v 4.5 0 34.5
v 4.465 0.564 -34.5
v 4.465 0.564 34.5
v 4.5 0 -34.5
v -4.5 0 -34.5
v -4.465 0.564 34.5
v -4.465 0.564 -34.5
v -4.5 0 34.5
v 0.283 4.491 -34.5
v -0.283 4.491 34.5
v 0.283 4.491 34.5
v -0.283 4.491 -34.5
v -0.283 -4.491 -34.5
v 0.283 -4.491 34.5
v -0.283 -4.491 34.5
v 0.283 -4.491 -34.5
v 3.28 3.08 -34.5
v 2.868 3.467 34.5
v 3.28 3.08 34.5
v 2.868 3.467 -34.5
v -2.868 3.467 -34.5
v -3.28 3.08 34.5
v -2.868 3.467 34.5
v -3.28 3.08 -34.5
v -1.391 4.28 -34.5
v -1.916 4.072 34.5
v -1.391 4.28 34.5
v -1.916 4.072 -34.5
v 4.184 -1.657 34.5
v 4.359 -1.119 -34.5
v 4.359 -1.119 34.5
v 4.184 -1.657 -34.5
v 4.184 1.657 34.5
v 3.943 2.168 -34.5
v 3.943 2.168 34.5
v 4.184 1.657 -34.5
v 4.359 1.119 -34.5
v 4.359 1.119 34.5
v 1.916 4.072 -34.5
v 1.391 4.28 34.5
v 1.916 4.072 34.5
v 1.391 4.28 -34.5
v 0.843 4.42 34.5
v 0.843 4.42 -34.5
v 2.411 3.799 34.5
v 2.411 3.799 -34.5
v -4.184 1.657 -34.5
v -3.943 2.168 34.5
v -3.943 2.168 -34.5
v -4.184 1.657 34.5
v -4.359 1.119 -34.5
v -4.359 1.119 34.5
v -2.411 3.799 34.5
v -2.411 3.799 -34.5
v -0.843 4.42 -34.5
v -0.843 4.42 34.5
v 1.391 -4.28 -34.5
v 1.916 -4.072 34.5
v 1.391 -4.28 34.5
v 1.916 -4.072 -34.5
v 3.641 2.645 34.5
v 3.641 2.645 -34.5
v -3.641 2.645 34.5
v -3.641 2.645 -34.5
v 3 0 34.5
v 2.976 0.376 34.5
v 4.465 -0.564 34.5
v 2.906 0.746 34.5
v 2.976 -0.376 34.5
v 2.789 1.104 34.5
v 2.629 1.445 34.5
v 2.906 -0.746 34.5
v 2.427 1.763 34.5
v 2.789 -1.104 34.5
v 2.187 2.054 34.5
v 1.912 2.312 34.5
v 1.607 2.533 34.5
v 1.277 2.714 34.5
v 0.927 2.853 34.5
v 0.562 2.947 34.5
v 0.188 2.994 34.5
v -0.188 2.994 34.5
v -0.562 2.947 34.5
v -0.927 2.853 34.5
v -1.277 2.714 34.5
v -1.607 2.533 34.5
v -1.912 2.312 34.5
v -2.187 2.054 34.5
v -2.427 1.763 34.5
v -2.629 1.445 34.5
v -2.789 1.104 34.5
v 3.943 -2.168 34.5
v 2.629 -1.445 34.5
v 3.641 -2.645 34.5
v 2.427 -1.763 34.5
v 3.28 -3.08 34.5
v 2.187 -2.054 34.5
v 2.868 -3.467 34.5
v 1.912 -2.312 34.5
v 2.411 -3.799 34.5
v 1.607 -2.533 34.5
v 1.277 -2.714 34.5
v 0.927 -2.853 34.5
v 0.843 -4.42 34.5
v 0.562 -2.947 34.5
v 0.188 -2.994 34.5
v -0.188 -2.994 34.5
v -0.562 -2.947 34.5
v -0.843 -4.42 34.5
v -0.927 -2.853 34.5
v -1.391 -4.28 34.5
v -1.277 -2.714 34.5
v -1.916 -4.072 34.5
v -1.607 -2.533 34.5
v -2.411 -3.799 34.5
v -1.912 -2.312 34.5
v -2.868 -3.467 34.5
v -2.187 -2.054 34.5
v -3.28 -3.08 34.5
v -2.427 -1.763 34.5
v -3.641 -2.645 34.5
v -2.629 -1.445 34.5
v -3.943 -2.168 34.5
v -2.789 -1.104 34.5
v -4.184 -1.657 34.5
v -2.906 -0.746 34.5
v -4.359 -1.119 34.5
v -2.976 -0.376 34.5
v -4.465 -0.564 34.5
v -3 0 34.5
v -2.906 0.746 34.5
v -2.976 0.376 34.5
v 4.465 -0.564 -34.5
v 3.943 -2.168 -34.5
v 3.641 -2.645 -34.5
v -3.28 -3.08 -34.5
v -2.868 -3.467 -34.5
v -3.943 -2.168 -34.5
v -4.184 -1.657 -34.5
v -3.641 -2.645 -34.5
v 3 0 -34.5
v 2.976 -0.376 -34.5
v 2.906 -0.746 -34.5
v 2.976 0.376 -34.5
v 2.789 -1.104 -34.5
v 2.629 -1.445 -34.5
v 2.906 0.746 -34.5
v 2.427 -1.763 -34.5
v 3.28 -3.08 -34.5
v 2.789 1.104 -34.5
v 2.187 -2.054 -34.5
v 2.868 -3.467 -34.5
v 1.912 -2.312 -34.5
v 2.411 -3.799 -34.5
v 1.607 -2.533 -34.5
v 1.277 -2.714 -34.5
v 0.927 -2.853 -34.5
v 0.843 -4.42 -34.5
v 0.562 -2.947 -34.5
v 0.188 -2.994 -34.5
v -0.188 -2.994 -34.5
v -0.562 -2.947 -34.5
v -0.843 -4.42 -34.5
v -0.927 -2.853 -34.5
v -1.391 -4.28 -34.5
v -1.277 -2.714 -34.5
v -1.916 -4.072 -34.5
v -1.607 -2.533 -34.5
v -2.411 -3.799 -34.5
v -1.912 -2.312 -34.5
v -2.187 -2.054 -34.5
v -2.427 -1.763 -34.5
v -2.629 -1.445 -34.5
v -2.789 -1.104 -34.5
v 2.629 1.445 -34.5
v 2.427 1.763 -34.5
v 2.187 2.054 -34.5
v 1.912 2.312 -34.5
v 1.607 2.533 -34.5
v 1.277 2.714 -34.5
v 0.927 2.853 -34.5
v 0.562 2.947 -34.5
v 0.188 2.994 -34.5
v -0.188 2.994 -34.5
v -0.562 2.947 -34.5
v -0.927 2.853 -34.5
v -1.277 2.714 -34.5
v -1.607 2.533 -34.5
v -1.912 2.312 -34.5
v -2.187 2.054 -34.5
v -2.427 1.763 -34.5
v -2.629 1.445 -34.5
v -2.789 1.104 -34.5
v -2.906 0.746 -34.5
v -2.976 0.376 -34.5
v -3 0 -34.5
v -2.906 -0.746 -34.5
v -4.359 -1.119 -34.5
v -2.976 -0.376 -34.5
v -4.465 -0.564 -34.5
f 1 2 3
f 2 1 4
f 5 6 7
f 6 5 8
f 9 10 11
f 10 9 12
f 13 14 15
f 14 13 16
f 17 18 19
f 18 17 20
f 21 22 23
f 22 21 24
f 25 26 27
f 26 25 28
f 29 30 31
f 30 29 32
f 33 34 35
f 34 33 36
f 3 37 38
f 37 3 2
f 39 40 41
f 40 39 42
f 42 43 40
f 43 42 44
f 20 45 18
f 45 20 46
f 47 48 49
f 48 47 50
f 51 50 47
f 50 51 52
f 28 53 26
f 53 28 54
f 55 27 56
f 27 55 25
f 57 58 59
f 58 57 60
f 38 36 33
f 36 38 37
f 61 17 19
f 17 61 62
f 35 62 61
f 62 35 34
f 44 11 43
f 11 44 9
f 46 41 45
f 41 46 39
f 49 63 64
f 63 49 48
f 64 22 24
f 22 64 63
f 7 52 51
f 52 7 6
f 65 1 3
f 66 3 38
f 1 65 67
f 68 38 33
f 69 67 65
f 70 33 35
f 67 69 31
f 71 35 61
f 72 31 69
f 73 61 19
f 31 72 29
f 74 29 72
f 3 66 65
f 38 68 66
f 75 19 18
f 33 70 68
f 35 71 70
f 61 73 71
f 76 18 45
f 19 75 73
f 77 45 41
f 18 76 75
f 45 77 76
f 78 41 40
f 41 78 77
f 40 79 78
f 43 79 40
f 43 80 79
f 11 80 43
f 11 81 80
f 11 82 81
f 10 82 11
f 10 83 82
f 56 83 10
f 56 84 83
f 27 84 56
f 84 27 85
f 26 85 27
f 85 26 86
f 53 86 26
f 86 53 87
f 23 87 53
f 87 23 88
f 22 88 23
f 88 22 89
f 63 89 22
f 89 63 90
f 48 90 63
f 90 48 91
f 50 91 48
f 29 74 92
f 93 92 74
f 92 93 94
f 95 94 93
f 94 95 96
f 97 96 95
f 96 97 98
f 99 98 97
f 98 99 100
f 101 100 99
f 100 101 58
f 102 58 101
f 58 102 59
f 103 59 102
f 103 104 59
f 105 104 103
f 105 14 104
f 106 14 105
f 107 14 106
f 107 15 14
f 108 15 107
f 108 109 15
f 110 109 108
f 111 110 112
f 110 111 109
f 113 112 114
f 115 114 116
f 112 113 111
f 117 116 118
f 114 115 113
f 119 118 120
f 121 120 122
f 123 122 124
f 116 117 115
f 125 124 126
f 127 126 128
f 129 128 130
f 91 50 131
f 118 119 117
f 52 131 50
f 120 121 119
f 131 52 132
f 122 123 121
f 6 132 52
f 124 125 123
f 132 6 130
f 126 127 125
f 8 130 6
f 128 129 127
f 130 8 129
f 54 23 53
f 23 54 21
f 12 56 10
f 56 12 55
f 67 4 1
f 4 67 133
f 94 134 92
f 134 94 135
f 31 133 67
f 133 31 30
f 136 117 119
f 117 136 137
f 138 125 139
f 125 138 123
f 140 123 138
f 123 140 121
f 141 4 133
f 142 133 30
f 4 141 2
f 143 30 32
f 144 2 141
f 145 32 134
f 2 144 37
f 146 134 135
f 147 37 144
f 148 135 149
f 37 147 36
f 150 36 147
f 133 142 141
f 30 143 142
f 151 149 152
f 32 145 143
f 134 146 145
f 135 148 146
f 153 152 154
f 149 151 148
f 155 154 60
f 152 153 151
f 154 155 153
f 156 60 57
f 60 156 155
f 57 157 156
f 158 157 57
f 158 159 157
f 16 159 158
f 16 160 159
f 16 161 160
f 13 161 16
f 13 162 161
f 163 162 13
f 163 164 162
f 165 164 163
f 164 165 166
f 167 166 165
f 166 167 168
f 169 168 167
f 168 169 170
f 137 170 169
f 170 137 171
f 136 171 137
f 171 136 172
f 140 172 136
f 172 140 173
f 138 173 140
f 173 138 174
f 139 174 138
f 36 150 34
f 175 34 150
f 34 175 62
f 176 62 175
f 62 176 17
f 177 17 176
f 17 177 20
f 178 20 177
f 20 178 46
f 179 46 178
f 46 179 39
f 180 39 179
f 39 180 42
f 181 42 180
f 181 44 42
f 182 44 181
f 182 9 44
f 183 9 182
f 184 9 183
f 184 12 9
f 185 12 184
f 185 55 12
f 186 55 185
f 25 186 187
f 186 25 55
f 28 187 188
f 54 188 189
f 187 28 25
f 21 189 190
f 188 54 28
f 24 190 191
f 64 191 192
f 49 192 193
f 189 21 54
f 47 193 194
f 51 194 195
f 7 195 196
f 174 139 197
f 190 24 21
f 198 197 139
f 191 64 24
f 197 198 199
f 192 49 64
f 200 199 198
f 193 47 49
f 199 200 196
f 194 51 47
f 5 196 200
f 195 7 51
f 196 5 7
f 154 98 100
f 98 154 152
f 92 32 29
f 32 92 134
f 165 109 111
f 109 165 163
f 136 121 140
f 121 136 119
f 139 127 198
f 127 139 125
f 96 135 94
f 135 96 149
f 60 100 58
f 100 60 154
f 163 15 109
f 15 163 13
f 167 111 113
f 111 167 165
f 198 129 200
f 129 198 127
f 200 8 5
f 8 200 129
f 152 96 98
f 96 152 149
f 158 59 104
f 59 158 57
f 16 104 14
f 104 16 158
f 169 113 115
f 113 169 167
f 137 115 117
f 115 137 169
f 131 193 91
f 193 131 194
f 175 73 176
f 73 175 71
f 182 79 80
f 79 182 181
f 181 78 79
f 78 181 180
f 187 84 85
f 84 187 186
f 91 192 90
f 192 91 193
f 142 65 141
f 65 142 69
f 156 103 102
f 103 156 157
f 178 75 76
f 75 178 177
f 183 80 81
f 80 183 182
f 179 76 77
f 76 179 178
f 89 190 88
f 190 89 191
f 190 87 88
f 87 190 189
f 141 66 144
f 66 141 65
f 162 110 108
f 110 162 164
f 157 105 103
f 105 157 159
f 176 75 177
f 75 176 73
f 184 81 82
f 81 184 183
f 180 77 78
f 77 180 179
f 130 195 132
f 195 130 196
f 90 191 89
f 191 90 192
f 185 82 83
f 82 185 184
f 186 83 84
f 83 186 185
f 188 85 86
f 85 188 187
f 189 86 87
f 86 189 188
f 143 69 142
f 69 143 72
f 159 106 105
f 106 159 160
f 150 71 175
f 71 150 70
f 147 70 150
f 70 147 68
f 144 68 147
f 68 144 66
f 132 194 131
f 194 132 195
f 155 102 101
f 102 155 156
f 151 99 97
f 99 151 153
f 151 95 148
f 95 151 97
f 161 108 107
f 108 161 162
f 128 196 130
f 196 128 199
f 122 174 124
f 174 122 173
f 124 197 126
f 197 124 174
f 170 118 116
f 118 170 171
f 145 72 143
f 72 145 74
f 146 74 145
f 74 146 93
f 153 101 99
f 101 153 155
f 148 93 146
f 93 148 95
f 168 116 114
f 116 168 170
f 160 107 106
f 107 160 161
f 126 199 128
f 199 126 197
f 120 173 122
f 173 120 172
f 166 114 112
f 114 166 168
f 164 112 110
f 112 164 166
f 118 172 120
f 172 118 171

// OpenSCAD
$fn = 50;


difference() {
	union() {
		translate(v = [0, 0, -34.5000000000]) {
			cylinder(h = 69, r = 4.5000000000);
		}
	}
	union() {
		translate(v = [0, 0, -100.0000000000]) {
			cylinder(h = 200, r = 3);
		}
	}
}
